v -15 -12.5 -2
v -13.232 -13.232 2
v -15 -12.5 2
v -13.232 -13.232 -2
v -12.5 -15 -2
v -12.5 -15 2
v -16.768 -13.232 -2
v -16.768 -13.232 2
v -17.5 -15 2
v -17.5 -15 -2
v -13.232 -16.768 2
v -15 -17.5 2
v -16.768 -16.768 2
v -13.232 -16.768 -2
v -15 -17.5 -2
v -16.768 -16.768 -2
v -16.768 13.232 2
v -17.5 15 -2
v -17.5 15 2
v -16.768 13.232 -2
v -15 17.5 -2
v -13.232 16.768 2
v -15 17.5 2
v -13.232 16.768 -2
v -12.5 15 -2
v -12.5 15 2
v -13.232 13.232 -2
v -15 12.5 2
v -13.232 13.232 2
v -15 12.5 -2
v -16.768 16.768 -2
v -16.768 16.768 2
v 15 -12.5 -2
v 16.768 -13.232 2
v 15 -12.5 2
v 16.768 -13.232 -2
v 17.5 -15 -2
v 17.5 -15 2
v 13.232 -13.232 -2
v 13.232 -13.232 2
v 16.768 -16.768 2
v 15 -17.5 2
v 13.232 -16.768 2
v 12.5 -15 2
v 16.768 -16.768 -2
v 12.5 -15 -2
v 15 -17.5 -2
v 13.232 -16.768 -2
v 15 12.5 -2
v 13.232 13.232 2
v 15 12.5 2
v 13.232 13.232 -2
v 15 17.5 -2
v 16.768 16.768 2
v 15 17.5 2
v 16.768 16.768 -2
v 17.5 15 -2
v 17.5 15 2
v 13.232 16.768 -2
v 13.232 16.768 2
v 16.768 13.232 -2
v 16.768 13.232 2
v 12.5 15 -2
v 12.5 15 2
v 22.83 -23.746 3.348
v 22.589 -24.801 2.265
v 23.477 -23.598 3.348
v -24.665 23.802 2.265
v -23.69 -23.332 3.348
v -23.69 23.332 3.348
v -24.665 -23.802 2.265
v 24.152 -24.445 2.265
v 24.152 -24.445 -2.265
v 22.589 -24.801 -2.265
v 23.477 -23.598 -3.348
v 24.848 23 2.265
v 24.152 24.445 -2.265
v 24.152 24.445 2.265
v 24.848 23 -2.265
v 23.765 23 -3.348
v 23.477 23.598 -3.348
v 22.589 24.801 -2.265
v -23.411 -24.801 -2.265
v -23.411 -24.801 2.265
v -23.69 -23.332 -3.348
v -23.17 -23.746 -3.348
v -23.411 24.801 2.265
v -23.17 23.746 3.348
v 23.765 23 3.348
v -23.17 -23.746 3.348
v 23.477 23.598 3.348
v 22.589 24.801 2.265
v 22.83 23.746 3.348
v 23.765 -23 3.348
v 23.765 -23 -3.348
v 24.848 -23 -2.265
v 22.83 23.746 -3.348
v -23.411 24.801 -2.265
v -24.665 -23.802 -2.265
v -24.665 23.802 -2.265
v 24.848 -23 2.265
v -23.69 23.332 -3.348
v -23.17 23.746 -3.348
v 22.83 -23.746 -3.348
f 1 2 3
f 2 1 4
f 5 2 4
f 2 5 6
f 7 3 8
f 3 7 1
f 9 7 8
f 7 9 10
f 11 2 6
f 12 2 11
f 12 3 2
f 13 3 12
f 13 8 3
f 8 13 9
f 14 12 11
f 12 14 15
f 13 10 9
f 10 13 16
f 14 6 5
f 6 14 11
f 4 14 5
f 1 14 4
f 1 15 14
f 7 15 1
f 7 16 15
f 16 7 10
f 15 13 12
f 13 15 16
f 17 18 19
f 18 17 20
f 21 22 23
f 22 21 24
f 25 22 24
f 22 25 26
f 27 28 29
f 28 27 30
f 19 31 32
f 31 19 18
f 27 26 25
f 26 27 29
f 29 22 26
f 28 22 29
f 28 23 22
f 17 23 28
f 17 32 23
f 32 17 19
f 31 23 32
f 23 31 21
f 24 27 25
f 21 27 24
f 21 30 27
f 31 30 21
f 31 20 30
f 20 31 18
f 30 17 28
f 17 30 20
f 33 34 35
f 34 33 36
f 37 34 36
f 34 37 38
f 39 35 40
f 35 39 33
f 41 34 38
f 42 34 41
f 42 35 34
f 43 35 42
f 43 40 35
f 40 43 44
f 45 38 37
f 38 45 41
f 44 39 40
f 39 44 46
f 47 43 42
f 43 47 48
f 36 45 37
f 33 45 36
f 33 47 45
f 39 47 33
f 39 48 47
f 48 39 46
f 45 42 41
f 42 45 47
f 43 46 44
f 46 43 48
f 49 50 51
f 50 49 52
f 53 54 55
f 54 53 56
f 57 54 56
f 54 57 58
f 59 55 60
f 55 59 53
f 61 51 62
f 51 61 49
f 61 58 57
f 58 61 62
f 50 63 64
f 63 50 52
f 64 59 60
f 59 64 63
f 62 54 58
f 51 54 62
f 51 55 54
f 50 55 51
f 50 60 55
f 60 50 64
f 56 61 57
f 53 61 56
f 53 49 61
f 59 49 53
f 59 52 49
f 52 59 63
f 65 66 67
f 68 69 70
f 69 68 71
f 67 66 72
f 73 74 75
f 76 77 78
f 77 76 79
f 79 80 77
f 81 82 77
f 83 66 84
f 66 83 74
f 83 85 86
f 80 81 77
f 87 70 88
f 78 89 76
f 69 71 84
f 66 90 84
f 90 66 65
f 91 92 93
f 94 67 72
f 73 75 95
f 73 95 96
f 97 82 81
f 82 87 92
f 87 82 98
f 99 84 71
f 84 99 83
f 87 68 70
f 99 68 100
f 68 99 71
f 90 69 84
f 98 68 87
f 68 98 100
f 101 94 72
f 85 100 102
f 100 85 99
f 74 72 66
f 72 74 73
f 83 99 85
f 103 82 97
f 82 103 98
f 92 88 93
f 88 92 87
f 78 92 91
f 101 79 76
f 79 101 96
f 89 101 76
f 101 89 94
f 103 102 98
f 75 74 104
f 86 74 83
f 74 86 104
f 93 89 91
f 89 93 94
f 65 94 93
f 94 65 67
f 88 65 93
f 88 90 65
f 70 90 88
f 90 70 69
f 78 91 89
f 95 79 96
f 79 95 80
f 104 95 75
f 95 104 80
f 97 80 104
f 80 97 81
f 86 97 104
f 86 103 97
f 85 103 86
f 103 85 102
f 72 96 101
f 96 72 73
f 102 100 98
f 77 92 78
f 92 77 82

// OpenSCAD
// Parameters for the flange plate
flange_plate_size = 50; // Length and width of the square plate
flange_plate_thickness = 3; // Adjusted thickness of the plate to match the original model
hole_diameter = 5; // Diameter of the bolt holes
hole_spacing = 30; // Distance between the centers of the holes
edge_radius = 2; // Radius for rounding the edges of the flange plate

// Function to create a flange plate
module flange_plate() {
    difference() {
        // Base square plate with rounded edges
        minkowski() {
            cube([flange_plate_size - edge_radius * 2, flange_plate_size - edge_radius * 2, flange_plate_thickness], center = true);
            sphere(r = edge_radius);
        }
        
        // Bolt holes
        for (x = [-hole_spacing/2, hole_spacing/2]) {
            for (y = [-hole_spacing/2, hole_spacing/2]) {
                translate([x, y, 0])
                    cylinder(r = hole_diameter/2, h = flange_plate_thickness + 1, center = true);
            }
        }
    }
}

// Render the flange plate
flange_plate();
